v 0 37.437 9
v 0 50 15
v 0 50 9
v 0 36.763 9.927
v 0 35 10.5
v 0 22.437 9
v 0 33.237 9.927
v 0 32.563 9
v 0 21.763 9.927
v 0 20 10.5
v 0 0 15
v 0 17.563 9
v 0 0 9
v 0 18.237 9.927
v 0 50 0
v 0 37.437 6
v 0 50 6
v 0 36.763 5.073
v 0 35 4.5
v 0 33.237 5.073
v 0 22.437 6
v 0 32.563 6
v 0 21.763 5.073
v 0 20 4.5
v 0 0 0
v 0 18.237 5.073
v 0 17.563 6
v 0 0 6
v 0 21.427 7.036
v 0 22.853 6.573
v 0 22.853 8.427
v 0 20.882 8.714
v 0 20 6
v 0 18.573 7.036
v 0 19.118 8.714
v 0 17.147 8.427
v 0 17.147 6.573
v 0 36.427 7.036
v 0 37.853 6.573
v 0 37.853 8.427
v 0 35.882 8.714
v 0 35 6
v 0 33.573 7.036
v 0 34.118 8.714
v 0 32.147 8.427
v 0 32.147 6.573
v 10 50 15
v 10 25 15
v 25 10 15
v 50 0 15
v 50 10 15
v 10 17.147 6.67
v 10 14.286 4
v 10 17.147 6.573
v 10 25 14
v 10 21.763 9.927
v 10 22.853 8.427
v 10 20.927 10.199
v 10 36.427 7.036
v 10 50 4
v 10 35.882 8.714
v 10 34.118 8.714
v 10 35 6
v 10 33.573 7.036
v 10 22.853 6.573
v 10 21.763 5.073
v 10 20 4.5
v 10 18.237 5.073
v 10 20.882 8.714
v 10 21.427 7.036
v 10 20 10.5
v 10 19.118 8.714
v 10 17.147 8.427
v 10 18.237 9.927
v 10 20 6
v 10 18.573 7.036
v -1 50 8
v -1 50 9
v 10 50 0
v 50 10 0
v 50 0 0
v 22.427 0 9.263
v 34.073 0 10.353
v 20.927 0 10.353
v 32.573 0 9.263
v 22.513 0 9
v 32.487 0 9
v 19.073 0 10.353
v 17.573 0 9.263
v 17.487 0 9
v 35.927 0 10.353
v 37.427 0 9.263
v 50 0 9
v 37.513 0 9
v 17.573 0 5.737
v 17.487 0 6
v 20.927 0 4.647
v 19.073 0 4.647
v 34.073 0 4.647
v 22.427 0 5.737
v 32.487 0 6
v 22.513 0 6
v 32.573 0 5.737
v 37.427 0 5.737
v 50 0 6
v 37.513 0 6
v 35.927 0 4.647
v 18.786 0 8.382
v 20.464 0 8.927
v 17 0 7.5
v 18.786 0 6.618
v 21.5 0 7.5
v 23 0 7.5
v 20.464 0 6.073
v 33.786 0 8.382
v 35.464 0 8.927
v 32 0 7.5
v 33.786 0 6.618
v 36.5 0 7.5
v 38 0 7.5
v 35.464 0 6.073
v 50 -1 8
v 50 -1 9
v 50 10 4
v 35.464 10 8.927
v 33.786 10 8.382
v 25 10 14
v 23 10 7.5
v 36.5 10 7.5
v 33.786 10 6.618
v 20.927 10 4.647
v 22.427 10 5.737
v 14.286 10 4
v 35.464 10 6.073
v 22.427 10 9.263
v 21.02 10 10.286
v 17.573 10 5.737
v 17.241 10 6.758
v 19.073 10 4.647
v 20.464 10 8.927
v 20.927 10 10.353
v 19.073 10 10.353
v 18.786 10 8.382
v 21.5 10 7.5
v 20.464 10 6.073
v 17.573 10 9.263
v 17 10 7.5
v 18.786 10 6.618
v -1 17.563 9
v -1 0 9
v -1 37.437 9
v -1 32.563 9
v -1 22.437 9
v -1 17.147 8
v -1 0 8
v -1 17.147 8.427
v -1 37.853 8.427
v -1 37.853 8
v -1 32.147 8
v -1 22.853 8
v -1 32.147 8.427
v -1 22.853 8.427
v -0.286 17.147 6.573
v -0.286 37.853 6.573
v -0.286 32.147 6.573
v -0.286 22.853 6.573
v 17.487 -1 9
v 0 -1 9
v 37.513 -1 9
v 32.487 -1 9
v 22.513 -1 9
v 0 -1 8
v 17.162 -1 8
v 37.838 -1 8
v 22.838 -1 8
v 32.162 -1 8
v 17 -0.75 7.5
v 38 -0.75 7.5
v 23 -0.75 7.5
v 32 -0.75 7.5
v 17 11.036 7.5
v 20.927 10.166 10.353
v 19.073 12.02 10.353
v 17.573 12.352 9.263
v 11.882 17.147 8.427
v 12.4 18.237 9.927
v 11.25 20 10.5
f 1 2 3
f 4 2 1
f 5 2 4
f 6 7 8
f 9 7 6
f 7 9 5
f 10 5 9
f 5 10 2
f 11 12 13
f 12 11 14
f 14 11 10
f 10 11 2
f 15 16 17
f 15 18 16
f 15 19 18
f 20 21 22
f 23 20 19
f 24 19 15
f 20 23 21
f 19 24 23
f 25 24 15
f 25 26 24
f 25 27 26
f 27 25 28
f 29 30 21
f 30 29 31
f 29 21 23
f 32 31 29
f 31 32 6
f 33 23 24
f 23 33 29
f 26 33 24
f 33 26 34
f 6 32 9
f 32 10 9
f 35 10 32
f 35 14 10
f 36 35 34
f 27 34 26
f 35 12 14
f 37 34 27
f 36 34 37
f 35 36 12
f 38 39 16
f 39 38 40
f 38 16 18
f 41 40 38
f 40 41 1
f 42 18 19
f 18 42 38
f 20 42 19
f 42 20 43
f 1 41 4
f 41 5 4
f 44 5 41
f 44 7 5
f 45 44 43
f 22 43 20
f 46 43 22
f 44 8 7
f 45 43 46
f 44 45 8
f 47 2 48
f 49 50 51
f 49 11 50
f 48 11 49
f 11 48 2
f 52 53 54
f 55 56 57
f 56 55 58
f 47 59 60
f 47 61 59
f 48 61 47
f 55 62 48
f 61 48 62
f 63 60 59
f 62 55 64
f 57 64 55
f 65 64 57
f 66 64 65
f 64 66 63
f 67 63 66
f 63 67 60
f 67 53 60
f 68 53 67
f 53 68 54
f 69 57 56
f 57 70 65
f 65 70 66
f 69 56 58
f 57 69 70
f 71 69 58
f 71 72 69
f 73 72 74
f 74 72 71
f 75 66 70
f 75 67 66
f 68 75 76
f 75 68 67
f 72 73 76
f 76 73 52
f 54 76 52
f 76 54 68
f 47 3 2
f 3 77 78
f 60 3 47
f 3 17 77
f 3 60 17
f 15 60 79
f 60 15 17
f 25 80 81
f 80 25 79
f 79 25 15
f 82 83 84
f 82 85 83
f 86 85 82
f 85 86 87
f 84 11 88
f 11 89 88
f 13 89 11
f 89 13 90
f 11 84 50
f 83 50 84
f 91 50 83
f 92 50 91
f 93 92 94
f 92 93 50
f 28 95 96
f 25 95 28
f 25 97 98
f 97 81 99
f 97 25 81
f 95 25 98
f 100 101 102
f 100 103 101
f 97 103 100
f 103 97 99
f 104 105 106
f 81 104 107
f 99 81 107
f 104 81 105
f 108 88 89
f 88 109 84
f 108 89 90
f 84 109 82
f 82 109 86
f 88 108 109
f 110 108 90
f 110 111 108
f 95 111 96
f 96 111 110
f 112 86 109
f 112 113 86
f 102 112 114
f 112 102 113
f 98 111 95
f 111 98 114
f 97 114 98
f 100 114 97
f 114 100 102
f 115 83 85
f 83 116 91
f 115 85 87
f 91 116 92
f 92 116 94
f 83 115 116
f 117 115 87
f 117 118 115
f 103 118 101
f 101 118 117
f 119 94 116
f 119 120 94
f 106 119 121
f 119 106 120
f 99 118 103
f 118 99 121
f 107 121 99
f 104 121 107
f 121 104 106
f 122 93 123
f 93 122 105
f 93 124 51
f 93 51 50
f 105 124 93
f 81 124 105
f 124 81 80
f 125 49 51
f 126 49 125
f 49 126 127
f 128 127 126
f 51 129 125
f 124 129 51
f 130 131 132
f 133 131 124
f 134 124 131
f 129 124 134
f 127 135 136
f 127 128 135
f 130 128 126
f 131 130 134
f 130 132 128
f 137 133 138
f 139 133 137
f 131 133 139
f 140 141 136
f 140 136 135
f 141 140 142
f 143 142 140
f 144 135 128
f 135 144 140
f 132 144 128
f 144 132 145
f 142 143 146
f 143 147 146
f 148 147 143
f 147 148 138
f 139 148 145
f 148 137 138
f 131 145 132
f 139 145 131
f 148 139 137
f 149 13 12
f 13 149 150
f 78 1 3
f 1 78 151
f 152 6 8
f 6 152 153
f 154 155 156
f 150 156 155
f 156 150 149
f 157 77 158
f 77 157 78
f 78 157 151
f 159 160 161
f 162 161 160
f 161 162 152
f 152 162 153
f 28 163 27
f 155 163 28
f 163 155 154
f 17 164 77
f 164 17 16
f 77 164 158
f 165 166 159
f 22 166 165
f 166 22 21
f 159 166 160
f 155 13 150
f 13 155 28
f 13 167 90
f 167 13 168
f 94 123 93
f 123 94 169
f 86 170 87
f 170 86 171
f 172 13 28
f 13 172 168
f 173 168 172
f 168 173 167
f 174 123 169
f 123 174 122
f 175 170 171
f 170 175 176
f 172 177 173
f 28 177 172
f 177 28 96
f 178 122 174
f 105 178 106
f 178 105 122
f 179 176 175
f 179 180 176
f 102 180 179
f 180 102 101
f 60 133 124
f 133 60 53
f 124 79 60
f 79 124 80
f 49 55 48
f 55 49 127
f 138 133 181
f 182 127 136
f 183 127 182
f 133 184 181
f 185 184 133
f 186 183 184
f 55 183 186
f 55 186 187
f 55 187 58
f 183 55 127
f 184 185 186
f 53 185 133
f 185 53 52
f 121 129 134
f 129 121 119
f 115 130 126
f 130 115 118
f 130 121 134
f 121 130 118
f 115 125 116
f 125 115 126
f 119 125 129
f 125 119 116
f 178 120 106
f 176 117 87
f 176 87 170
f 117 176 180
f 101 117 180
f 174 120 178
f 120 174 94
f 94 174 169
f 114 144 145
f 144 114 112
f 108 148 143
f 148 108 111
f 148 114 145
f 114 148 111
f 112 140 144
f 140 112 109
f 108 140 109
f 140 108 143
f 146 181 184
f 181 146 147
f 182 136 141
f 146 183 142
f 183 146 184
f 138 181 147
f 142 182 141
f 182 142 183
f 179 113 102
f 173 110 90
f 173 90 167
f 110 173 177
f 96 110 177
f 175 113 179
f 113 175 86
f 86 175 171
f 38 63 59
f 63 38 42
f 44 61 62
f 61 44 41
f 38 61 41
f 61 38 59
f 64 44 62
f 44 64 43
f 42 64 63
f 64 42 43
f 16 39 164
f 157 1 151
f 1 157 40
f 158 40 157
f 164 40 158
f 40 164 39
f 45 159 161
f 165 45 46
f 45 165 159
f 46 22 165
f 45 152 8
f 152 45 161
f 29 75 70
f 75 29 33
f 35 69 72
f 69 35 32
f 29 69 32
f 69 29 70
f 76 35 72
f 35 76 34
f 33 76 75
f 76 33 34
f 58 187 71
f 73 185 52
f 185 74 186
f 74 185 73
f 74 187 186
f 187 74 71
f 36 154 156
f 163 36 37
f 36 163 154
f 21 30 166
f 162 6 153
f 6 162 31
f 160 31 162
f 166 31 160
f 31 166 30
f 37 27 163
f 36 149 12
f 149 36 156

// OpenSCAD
Length = 50;
Height = 15;
Thickness = 10;
holeDiameter = 3;



difference()
{
    union()
    {
        walls();
        lip();
        plate();
        brace();
    }
    holes();
}




// slot lip
module lip()
{
    hull()
    {
        translate([-1, 0, Height/2 + .5]) cube ([1,Length,1]);
        translate([0, 0, Height/2 - 1.5]) cube ([1,Length,1]);
    }

    hull()
    {
        translate([ 0,-1, Height/2 + .5]) cube ([Length,1,1]);
        translate([0, 0, Height/2 - 1.5]) cube ([Length,1,1]);
    }
}





// holes
module holes()
{
translate([Length-15, -.5, Height/2]) 
    rotate([-90,0,0]) 
        cylinder(d=holeDiameter, h=Thickness +1);
translate([Length-15, -Thickness, Height/2]) 
    rotate([-90,0,0]) 
        cylinder(r=holeDiameter, h=Thickness );

translate([Length-15-15, -.5, Height/2]) 
    rotate([-90,0,0]) 
        cylinder(d=holeDiameter, h=Thickness +1);
 translate([Length-15-15, Thickness, Height/2]) 
    rotate([-90,0,0]) 
        cylinder(r=holeDiameter, h=Thickness );
 translate([Length-15-15, -Thickness, Height/2]) 
    rotate([-90,0,0]) 
        cylinder(r=holeDiameter, h=Thickness );
     
  
    
translate([ -.5,Length-15, Height/2]) 
    rotate([0, 90, 0]) 
        cylinder(d=holeDiameter, h=Thickness +1);
translate([ -Thickness,Length-15, Height/2]) 
    rotate([0,90,0]) 
        cylinder(r=holeDiameter, h=Thickness );
    
translate([ -.5,Length-15-15, Height/2]) 
    rotate([0,90,0]) 
        cylinder(d=holeDiameter, h=Thickness +1);
translate([ Thickness,Length-15-15, Height/2]) 
    rotate([0,90,0]) 
        cylinder(r=holeDiameter, h=Thickness );
translate([ -Thickness,Length-15-15, Height/2]) 
    rotate([0,90,0]) 
        cylinder(r=holeDiameter, h=Thickness );
}



module walls()
{
//walls
cube ([Thickness,Length,Height]);
cube ([Length,Thickness,Height]);
}


//angle plate
module plate()
{
hull()
{
    cube ([Thickness,Length,4]);
    cube ([Length,Thickness,4]);
    cube ([1,15,4]);
}
}


// inner brace
module brace()
{
hull()
{
    translate([0,0,Height-1]) cube ([Thickness,Height+Thickness,1]);
    translate([0,0,Height-1]) cube ([Height+Thickness,Thickness,1]);
    cube ([Thickness,Thickness,Height]);
}   
}
